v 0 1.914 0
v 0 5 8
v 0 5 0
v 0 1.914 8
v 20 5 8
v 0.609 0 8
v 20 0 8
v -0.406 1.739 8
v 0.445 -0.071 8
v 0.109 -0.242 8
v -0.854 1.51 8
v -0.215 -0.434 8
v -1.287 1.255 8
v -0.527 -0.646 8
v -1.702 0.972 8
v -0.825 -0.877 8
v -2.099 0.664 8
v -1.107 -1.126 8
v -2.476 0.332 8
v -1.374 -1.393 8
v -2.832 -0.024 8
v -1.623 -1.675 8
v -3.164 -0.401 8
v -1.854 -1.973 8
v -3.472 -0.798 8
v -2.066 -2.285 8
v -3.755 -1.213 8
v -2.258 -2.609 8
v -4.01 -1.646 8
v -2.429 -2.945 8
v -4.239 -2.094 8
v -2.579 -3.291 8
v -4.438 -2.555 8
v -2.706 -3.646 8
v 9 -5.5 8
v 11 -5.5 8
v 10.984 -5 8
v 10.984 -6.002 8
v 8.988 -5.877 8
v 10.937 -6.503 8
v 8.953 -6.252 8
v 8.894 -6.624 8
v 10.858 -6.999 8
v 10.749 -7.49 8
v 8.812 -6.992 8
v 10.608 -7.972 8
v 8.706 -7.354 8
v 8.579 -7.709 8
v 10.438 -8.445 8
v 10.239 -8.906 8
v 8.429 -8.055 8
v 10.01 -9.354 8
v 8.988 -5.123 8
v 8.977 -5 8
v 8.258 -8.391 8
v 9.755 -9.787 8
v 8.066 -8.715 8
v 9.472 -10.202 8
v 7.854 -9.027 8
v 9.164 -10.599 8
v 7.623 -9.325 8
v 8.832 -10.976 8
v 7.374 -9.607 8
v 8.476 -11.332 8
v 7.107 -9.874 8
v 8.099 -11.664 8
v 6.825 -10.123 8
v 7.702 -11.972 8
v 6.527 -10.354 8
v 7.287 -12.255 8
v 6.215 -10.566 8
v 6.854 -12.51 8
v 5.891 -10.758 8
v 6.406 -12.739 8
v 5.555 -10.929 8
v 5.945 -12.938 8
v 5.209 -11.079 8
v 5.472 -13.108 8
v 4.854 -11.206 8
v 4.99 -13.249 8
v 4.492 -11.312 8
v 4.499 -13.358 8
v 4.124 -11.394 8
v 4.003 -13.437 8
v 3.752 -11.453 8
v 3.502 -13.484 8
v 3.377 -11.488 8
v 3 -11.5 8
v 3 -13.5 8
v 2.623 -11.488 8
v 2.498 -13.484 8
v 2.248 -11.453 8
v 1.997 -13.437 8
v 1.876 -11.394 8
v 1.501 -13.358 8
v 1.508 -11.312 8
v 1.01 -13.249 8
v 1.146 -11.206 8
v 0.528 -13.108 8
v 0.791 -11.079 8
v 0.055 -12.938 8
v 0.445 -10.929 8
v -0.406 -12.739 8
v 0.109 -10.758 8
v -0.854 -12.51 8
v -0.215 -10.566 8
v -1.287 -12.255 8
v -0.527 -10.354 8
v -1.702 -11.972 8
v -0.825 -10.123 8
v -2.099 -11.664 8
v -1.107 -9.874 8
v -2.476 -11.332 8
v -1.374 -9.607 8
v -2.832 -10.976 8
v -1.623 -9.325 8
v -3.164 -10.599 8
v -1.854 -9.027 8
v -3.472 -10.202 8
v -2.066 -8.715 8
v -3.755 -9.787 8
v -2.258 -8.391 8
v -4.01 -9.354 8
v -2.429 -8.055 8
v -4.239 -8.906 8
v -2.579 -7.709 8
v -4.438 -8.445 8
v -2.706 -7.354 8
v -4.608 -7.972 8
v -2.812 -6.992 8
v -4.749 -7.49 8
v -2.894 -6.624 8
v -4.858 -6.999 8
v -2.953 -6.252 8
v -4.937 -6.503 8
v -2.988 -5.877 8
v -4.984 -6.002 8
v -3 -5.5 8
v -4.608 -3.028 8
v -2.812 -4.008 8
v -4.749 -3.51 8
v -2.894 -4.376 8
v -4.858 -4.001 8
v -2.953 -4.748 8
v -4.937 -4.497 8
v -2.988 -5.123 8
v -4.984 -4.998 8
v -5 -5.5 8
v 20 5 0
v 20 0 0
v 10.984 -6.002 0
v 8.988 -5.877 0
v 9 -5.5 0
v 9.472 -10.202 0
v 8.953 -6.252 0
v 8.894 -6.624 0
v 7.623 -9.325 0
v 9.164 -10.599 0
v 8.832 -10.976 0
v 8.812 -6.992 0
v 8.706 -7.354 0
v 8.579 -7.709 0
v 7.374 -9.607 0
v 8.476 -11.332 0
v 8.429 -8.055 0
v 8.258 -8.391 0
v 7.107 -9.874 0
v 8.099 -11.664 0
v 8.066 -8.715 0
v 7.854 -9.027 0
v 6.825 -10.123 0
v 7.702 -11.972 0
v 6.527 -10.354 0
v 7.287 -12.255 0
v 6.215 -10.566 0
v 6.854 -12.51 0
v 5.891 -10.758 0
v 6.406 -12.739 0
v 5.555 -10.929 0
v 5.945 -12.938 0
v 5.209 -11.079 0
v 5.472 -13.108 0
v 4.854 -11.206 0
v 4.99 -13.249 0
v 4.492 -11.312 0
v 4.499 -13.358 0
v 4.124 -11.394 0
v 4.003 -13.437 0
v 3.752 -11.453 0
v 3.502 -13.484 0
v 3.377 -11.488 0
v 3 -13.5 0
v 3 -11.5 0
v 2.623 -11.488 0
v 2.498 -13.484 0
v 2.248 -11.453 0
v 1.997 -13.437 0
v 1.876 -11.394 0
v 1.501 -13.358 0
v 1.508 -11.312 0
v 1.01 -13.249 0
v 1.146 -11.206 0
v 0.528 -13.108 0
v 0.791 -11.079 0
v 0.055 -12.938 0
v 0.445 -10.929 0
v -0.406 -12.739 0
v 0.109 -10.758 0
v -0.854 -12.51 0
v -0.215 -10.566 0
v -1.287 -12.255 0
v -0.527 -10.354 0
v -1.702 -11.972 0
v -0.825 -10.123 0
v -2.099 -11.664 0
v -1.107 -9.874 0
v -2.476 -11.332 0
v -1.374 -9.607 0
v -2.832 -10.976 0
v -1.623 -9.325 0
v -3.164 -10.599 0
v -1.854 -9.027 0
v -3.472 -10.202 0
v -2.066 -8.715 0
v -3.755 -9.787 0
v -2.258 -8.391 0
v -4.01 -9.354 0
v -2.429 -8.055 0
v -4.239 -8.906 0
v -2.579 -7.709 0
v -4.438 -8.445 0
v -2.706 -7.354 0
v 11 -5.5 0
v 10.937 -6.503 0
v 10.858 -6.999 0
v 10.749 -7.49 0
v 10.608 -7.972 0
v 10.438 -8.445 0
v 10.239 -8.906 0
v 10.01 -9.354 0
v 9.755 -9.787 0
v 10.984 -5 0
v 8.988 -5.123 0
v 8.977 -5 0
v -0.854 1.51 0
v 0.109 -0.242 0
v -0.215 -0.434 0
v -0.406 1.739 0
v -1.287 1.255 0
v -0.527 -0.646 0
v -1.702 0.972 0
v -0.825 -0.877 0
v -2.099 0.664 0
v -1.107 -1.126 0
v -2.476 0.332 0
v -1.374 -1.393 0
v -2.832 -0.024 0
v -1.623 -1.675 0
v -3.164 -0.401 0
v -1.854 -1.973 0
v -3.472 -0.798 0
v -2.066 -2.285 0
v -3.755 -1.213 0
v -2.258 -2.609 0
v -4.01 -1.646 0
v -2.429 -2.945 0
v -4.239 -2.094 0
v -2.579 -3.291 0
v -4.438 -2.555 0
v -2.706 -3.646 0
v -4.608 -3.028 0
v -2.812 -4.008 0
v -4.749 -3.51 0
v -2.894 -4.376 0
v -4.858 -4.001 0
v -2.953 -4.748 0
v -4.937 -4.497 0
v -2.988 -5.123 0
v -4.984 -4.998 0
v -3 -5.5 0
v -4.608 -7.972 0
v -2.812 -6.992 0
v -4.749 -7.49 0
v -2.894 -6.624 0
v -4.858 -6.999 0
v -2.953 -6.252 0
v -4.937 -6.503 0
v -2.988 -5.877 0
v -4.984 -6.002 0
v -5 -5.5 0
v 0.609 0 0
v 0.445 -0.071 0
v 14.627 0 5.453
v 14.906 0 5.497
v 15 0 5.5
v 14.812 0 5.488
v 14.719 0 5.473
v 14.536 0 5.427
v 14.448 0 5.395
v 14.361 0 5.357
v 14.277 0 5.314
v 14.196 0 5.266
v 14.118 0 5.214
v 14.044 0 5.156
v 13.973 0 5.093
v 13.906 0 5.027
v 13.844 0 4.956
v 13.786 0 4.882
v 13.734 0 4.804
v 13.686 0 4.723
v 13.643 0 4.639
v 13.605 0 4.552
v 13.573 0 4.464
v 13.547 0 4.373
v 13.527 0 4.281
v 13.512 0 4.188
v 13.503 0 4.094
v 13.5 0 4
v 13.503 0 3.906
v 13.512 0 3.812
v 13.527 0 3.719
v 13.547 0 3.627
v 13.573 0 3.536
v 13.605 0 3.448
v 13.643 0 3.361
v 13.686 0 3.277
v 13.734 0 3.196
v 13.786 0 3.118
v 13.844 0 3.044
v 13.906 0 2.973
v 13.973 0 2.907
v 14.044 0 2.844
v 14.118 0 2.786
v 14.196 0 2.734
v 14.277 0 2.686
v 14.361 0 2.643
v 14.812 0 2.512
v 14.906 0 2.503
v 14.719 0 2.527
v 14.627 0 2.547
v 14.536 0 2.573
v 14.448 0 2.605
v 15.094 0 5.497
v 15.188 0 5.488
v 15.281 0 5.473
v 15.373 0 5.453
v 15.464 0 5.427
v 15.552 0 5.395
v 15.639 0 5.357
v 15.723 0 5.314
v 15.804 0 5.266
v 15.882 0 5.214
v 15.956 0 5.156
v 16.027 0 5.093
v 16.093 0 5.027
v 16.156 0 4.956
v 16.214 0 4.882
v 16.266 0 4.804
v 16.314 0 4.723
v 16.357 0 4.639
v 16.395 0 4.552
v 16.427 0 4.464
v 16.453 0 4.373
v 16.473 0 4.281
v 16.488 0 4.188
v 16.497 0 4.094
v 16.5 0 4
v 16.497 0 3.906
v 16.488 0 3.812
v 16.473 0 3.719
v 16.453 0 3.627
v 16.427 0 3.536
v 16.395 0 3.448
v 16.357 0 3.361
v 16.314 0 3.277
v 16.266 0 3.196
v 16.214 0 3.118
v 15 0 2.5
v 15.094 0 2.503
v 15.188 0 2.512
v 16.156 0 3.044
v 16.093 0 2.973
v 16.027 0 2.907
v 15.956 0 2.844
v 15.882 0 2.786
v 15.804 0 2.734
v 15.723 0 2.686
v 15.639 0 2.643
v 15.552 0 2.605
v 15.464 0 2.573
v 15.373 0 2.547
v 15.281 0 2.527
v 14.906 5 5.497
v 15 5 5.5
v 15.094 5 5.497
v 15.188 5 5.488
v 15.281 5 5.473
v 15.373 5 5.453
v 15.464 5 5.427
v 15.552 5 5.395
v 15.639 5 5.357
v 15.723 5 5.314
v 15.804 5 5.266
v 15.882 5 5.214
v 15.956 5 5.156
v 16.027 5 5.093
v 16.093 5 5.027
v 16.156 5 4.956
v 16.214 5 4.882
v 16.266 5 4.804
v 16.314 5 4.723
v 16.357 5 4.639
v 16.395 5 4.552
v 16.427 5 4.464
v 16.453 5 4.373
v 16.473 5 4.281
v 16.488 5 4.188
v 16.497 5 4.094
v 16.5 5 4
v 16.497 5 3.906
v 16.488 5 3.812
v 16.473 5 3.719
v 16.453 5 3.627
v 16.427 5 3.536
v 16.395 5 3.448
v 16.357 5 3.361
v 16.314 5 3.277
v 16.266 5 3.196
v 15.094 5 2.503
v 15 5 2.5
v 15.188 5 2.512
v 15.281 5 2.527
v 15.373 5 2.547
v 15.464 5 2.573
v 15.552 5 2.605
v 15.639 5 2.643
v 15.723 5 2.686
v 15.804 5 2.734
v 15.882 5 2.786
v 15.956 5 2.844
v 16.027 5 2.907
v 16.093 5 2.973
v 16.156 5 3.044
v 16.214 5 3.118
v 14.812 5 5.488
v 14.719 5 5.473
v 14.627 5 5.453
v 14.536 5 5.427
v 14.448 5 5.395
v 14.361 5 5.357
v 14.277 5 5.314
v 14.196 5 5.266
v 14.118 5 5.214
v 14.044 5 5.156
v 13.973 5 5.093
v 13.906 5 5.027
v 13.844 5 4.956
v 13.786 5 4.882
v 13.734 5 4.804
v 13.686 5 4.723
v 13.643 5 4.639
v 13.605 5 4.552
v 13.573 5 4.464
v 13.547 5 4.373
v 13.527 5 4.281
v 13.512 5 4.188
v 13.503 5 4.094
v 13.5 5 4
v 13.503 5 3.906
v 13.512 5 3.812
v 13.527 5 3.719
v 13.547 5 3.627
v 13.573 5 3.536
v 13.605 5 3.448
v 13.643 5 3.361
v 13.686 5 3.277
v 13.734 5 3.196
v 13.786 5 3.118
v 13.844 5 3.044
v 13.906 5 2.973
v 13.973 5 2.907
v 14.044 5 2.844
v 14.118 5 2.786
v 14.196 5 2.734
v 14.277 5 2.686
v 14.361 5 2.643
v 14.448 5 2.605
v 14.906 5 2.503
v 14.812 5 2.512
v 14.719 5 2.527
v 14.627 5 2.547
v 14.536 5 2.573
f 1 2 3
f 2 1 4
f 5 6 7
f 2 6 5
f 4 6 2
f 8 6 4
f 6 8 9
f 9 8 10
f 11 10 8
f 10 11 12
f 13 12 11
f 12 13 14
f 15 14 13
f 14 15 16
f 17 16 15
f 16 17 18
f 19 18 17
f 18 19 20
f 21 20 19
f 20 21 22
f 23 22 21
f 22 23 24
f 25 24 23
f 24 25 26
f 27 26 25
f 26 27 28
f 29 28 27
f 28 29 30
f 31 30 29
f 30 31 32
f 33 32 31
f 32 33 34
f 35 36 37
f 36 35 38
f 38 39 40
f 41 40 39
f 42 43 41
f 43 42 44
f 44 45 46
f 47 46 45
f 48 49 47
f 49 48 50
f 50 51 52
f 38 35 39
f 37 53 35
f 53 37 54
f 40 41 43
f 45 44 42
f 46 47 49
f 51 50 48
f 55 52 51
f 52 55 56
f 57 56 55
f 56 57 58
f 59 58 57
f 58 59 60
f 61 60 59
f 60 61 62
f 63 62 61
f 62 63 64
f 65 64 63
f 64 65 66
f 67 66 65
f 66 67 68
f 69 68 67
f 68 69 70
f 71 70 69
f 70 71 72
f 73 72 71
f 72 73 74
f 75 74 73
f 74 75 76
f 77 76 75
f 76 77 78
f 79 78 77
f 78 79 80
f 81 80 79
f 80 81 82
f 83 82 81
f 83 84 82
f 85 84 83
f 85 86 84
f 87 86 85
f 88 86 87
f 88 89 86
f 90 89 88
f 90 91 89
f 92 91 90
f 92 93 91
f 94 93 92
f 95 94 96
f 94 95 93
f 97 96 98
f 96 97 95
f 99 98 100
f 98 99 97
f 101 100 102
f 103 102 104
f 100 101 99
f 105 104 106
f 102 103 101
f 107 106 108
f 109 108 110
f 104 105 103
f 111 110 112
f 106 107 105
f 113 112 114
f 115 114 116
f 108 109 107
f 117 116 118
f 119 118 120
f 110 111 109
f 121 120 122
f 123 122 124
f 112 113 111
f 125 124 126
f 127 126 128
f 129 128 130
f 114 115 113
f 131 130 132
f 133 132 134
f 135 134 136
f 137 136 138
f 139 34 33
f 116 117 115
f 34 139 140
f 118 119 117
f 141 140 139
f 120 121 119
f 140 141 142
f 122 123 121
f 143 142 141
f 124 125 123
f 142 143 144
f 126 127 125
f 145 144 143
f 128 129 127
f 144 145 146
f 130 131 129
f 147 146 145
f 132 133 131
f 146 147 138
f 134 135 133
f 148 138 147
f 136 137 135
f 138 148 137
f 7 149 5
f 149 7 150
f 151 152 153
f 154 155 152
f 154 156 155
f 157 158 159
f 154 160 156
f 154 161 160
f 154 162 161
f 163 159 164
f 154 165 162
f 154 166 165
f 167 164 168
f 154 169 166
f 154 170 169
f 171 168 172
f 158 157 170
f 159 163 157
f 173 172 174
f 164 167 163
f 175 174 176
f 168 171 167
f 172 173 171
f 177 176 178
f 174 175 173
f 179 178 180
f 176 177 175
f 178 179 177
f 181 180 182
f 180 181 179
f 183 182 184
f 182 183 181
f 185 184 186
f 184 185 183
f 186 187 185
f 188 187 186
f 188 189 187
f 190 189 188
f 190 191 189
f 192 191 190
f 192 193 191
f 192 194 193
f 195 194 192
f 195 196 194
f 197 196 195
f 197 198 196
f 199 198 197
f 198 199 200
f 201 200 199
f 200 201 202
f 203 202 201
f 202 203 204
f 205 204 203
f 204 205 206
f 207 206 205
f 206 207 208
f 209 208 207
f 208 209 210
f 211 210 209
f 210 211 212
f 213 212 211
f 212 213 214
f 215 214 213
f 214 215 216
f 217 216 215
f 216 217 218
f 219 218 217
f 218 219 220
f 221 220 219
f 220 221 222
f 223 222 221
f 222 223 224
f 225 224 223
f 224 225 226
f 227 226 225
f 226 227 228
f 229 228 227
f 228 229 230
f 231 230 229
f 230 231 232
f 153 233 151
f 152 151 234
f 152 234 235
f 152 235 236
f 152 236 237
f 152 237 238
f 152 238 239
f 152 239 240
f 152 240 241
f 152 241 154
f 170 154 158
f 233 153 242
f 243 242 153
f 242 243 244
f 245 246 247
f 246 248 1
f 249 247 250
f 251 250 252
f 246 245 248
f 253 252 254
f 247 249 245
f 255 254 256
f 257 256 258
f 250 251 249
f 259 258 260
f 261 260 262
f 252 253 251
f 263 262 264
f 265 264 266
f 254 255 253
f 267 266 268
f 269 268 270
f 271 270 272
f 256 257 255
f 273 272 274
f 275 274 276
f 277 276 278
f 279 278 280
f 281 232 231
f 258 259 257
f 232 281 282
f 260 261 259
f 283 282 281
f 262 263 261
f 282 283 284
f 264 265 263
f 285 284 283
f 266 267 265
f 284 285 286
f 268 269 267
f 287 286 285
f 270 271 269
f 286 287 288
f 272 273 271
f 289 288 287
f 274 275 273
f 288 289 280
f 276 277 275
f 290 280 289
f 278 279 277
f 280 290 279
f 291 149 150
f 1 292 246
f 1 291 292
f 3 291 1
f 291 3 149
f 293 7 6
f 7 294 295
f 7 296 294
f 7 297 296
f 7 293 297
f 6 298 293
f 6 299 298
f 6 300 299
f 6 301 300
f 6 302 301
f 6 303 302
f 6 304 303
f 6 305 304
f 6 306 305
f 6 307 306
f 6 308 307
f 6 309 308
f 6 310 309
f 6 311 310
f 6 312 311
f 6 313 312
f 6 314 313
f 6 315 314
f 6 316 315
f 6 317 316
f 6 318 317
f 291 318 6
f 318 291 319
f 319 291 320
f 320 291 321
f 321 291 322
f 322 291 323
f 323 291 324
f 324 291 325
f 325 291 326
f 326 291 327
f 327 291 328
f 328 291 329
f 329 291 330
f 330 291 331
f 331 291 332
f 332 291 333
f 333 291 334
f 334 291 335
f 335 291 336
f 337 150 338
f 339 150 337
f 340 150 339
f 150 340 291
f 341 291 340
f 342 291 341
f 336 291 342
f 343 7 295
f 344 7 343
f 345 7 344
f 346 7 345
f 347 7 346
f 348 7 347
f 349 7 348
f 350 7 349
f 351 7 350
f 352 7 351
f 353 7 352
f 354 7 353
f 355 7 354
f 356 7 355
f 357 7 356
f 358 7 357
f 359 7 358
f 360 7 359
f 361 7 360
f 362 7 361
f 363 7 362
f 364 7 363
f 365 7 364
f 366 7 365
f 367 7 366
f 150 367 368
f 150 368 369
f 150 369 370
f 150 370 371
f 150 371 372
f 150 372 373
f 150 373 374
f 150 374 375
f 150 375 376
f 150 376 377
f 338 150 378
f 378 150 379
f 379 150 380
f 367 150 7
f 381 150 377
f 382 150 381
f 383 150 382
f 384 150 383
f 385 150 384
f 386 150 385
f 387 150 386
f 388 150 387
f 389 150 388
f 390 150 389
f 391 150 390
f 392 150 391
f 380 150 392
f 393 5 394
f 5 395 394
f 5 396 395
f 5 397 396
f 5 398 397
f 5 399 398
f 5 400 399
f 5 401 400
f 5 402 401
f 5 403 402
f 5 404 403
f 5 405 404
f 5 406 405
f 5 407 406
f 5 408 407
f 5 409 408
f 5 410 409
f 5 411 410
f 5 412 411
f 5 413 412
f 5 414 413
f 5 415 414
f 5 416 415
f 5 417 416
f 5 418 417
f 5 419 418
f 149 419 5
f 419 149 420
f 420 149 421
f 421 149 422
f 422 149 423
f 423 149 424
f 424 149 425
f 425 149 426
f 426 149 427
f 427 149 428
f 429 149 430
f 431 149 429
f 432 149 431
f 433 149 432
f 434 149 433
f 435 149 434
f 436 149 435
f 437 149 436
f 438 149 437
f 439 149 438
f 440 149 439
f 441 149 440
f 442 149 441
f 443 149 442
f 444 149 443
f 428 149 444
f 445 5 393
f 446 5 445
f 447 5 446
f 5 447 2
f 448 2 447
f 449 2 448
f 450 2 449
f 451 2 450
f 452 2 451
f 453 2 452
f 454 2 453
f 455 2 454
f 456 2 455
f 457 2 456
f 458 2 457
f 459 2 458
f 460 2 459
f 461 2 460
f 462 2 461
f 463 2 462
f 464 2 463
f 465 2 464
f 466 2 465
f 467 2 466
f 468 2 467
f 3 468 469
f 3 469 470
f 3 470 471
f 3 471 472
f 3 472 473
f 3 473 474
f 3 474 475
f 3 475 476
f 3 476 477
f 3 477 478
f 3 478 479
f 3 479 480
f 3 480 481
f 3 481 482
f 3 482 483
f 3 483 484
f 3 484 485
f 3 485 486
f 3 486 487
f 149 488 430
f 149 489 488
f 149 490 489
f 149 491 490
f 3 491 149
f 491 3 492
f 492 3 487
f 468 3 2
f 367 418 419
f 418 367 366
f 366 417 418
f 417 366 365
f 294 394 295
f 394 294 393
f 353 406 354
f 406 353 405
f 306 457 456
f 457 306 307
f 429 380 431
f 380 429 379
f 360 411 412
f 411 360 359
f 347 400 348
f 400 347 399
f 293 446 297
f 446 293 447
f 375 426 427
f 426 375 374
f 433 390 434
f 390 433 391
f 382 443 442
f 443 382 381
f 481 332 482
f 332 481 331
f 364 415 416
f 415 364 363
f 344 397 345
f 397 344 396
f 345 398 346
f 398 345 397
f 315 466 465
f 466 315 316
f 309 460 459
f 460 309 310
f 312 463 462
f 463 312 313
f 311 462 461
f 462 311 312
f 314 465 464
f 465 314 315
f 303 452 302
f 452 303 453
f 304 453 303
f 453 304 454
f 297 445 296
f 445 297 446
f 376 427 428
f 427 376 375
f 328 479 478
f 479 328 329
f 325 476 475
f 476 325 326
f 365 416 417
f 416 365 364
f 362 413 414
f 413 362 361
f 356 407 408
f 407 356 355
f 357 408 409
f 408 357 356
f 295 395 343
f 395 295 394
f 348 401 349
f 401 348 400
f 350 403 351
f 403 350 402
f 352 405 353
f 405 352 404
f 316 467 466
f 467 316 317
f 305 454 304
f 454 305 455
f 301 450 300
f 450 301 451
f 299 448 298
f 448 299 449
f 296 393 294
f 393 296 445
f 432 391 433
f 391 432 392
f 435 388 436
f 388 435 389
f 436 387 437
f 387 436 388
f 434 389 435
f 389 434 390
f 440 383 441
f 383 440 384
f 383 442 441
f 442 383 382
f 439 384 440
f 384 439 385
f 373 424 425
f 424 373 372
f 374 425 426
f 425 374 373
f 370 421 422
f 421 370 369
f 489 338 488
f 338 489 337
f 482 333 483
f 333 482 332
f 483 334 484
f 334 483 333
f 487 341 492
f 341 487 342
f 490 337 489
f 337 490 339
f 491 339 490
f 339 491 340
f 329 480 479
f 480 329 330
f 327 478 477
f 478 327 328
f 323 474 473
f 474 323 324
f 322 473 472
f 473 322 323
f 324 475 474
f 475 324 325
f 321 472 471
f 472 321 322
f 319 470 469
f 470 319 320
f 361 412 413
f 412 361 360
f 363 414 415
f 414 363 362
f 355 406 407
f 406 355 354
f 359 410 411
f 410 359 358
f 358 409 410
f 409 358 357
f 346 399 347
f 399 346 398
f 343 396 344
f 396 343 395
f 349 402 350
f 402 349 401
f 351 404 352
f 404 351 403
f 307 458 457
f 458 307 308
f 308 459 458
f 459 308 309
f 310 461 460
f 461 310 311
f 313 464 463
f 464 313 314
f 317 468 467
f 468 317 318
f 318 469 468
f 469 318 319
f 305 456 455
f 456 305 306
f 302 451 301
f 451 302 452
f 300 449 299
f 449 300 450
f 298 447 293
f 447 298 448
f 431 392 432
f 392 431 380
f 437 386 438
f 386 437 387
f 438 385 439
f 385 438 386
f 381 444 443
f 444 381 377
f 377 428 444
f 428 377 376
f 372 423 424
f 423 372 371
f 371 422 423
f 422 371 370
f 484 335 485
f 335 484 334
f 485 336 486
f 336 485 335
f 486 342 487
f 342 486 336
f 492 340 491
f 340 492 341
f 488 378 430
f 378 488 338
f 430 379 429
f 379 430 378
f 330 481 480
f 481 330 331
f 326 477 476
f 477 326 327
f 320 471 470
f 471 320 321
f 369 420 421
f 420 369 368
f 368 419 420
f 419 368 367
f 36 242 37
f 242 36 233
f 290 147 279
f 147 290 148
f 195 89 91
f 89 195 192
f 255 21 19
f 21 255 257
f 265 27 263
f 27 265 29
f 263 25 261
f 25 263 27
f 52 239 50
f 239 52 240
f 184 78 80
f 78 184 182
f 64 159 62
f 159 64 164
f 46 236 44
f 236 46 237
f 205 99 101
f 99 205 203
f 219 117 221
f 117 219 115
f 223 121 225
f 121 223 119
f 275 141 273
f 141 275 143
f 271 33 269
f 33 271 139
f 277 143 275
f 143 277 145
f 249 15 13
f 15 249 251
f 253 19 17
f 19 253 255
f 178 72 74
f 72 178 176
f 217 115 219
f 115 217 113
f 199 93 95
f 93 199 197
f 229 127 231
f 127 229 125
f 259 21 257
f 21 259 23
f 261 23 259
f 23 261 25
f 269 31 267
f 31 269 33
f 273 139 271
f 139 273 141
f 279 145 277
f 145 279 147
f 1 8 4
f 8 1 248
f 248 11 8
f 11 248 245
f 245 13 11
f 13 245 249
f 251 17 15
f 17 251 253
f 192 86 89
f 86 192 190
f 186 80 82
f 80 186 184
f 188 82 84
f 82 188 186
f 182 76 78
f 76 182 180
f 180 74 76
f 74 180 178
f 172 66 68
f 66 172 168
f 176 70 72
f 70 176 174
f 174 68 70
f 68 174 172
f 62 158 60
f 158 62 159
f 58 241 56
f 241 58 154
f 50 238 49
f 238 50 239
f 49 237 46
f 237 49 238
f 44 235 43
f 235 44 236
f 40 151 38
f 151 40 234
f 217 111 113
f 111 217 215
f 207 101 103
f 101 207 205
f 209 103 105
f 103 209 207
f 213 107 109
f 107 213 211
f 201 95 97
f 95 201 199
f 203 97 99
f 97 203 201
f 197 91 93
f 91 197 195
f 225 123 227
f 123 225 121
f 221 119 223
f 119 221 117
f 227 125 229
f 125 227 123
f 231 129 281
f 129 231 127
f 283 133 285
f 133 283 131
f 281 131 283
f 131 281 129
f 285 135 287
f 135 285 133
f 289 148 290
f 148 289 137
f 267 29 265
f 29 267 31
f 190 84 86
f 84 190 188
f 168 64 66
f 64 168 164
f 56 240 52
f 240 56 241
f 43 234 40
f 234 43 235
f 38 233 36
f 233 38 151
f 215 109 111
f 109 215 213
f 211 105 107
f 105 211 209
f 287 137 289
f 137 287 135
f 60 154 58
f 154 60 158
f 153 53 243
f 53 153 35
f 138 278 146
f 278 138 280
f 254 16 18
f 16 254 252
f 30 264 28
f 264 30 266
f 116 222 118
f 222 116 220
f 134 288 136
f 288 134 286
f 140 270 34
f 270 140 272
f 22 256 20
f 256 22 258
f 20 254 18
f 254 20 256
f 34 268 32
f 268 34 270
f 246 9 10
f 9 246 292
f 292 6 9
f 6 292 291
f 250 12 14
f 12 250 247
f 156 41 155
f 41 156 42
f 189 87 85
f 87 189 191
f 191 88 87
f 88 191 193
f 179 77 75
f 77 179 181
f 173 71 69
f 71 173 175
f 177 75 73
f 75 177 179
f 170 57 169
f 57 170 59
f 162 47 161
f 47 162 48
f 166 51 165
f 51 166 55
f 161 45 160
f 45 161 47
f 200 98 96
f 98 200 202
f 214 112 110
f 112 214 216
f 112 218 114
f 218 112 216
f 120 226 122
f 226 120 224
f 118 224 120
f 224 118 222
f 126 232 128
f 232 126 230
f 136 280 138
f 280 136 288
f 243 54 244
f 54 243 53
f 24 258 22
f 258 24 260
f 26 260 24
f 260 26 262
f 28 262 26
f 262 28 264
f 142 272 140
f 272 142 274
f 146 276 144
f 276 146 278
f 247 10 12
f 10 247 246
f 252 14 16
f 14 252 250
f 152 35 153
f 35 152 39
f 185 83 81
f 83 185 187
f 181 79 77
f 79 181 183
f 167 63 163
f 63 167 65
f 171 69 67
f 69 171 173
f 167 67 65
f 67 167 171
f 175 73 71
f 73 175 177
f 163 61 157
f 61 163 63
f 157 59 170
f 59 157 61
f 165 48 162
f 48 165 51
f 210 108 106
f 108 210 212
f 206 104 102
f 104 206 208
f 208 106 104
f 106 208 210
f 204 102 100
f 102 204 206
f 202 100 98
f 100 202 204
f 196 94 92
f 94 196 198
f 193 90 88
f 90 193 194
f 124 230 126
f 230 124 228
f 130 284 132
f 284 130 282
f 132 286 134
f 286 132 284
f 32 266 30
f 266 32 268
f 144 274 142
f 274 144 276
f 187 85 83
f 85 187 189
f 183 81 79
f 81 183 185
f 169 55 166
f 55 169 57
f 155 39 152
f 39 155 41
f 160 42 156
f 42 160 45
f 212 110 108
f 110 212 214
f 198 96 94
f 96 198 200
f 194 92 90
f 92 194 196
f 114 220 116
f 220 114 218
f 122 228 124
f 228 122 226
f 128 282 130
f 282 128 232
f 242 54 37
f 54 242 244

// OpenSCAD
difference(){
    cube([20,5,8]);
    translate([15,6,4]) rotate([90,0,0]) cylinder(r=1.5,h=8,$fn=100);  
    }
difference(){
  translate([3,-5.5,0]) cylinder(r=8,h=8,$fn=100);
  translate([3,-5.5,-.1]) cylinder(r=6,h=8.2,$fn=100);
  translate([4,-5,-.1]) cube([15,5,8.2]);
  
}
